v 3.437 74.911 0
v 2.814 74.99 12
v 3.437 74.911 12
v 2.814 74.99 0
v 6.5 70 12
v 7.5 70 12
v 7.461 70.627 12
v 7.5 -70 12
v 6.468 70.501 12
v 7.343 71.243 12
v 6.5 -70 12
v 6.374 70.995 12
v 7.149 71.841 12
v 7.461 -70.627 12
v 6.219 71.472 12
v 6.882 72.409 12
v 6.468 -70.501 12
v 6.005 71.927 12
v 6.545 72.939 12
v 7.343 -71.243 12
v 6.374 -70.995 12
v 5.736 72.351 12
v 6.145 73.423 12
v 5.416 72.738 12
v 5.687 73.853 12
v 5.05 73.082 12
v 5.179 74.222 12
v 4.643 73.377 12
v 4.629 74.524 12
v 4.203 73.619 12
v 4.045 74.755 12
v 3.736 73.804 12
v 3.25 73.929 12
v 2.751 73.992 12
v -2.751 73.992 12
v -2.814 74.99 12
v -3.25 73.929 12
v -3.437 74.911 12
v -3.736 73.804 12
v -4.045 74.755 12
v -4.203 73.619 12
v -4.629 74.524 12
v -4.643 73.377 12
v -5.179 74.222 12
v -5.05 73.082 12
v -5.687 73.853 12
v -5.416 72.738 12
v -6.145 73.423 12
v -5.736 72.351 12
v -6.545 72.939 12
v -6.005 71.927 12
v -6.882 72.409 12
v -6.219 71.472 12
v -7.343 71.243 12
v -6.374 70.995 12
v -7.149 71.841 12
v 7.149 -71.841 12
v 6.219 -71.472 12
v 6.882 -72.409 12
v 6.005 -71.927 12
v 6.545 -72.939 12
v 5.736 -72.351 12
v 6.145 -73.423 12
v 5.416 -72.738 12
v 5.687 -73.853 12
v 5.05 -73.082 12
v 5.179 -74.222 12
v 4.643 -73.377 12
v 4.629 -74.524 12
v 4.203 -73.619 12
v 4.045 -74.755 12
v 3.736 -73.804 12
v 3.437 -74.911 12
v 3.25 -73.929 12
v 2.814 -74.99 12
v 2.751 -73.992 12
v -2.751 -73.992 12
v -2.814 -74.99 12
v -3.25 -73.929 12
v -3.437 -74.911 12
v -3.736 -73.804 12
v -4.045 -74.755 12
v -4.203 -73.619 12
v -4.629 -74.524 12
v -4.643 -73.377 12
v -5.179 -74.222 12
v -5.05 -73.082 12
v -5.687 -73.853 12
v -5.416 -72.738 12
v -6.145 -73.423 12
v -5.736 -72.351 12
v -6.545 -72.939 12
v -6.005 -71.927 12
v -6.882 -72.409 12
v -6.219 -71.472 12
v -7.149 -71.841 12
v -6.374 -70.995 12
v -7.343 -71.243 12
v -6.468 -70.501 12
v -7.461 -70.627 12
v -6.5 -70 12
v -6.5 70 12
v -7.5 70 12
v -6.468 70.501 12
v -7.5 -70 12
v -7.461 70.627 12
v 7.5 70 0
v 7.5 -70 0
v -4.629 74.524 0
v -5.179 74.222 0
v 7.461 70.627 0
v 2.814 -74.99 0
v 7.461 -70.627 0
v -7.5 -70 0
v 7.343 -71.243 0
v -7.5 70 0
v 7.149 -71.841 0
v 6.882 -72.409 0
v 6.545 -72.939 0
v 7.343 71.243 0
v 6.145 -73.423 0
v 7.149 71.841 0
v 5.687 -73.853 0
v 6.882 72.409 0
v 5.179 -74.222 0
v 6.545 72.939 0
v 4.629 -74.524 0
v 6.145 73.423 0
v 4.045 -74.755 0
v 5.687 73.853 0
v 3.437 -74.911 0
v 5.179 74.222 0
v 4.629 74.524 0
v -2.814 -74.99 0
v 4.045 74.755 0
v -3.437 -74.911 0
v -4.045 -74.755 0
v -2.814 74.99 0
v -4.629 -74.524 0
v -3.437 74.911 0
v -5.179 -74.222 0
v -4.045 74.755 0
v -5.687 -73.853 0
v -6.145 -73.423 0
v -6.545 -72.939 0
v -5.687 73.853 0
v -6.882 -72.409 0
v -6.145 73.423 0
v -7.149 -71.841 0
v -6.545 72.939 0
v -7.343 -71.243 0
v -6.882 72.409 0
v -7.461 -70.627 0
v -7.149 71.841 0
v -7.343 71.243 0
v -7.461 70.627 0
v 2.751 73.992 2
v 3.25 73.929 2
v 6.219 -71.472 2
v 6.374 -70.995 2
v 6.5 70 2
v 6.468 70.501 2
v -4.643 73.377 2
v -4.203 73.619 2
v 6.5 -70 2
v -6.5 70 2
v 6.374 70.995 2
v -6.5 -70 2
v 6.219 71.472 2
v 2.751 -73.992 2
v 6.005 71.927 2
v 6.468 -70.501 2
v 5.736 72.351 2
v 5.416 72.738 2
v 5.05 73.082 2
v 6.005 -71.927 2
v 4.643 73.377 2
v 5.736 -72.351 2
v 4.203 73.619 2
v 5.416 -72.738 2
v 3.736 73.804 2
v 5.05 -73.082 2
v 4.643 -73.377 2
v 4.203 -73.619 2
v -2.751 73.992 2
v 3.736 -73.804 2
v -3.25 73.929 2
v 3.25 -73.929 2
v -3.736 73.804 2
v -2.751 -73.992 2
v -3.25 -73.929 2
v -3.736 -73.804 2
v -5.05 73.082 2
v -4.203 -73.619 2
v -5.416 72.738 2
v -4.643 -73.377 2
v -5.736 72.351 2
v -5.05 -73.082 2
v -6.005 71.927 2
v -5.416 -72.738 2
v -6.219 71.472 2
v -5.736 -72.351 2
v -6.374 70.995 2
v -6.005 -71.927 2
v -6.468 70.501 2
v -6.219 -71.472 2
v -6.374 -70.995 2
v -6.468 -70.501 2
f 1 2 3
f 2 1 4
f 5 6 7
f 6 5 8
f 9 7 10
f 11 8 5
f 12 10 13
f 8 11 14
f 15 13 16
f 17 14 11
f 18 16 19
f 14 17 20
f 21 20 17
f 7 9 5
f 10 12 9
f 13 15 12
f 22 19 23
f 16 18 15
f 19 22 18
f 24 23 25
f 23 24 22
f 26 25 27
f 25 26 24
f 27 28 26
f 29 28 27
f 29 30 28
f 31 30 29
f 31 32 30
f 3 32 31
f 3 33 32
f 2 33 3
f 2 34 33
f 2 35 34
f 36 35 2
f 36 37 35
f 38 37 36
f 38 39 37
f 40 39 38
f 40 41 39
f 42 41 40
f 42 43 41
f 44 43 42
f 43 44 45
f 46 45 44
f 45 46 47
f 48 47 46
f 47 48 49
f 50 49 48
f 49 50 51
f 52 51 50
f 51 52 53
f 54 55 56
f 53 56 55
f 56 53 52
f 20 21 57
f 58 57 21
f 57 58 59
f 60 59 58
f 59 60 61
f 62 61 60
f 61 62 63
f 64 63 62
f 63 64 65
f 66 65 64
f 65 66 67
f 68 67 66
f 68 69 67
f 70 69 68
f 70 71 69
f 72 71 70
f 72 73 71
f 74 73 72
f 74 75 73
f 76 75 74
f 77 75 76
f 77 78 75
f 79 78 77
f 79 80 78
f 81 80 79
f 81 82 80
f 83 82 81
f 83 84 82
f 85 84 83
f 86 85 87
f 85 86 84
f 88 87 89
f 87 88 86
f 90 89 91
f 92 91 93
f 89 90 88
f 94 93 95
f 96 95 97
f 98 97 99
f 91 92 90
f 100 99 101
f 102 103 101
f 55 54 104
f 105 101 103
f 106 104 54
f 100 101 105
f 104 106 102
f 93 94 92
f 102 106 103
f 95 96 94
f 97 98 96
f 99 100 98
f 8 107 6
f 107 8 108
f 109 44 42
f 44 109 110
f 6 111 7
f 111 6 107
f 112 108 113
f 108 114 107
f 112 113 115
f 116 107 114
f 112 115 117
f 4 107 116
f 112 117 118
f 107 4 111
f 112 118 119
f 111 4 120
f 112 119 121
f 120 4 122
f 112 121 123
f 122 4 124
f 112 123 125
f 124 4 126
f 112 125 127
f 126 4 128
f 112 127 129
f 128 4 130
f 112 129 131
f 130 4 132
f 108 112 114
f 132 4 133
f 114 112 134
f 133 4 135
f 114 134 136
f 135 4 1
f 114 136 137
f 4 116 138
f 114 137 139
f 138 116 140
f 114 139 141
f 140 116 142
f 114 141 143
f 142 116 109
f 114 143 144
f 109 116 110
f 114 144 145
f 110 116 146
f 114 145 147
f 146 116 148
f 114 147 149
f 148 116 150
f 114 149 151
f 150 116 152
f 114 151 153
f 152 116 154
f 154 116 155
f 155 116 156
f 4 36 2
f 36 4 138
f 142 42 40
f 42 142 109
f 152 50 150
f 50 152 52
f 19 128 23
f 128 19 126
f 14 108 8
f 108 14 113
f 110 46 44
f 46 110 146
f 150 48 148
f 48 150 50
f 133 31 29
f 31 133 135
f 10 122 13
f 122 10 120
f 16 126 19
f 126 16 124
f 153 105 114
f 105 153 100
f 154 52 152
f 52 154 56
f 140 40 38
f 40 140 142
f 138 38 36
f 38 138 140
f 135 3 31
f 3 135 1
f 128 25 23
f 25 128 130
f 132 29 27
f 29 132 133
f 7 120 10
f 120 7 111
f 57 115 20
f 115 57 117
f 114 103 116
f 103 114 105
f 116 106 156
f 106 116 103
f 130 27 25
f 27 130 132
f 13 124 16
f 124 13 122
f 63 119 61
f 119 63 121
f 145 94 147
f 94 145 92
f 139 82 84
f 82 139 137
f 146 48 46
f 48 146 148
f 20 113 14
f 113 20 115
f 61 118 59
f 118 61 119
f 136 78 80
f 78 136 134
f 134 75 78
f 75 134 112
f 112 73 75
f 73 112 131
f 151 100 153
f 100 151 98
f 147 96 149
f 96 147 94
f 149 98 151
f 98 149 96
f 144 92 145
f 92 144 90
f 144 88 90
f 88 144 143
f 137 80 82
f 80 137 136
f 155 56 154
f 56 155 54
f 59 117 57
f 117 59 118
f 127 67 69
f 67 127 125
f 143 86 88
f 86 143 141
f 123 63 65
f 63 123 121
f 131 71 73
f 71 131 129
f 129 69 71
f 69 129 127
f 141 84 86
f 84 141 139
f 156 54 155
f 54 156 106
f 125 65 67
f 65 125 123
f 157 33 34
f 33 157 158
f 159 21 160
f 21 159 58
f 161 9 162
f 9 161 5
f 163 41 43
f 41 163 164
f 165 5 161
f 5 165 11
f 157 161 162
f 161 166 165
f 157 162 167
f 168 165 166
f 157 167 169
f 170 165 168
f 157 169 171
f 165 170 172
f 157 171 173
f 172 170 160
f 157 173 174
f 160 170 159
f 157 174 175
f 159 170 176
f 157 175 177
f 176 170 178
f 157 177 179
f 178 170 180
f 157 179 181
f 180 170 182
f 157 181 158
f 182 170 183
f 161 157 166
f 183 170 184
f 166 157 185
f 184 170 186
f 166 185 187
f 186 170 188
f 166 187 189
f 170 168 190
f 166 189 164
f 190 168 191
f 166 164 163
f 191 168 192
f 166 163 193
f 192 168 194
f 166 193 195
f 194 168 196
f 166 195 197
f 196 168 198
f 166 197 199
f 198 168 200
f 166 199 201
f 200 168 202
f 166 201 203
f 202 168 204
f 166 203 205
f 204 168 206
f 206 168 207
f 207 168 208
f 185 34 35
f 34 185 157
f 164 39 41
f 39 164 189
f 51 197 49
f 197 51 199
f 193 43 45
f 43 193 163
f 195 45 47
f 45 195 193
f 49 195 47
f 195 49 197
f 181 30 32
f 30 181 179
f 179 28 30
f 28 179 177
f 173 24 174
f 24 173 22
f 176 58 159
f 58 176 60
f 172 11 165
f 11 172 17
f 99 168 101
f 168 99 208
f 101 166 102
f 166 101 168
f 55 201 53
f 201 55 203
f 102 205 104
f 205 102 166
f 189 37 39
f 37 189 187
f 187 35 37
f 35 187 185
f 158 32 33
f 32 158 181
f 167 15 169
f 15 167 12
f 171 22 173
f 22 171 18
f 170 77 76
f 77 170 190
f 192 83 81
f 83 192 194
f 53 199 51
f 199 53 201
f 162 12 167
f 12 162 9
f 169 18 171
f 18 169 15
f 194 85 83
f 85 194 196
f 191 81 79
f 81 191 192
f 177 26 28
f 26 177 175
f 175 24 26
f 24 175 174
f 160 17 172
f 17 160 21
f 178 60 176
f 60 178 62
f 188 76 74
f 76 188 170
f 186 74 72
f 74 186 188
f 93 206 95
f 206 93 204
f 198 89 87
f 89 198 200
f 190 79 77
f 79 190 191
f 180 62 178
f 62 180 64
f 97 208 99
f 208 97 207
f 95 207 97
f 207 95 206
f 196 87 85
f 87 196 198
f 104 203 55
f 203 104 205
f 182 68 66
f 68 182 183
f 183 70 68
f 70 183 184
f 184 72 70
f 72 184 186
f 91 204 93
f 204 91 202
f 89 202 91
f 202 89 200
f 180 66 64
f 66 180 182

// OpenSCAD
$fn = 50;


difference() {
	union() {
		hull() {
			translate(v = [-2.5000000000, 70.0000000000, 0]) {
				cylinder(h = 12, r = 5);
			}
			translate(v = [2.5000000000, 70.0000000000, 0]) {
				cylinder(h = 12, r = 5);
			}
			translate(v = [-2.5000000000, -70.0000000000, 0]) {
				cylinder(h = 12, r = 5);
			}
			translate(v = [2.5000000000, -70.0000000000, 0]) {
				cylinder(h = 12, r = 5);
			}
		}
	}
	union() {
		translate(v = [0, 0, 2]) {
			hull() {
				translate(v = [-2.5000000000, 70.0000000000, 0]) {
					cylinder(h = 10, r = 4);
				}
				translate(v = [2.5000000000, 70.0000000000, 0]) {
					cylinder(h = 10, r = 4);
				}
				translate(v = [-2.5000000000, -70.0000000000, 0]) {
					cylinder(h = 10, r = 4);
				}
				translate(v = [2.5000000000, -70.0000000000, 0]) {
					cylinder(h = 10, r = 4);
				}
			}
		}
	}
}
